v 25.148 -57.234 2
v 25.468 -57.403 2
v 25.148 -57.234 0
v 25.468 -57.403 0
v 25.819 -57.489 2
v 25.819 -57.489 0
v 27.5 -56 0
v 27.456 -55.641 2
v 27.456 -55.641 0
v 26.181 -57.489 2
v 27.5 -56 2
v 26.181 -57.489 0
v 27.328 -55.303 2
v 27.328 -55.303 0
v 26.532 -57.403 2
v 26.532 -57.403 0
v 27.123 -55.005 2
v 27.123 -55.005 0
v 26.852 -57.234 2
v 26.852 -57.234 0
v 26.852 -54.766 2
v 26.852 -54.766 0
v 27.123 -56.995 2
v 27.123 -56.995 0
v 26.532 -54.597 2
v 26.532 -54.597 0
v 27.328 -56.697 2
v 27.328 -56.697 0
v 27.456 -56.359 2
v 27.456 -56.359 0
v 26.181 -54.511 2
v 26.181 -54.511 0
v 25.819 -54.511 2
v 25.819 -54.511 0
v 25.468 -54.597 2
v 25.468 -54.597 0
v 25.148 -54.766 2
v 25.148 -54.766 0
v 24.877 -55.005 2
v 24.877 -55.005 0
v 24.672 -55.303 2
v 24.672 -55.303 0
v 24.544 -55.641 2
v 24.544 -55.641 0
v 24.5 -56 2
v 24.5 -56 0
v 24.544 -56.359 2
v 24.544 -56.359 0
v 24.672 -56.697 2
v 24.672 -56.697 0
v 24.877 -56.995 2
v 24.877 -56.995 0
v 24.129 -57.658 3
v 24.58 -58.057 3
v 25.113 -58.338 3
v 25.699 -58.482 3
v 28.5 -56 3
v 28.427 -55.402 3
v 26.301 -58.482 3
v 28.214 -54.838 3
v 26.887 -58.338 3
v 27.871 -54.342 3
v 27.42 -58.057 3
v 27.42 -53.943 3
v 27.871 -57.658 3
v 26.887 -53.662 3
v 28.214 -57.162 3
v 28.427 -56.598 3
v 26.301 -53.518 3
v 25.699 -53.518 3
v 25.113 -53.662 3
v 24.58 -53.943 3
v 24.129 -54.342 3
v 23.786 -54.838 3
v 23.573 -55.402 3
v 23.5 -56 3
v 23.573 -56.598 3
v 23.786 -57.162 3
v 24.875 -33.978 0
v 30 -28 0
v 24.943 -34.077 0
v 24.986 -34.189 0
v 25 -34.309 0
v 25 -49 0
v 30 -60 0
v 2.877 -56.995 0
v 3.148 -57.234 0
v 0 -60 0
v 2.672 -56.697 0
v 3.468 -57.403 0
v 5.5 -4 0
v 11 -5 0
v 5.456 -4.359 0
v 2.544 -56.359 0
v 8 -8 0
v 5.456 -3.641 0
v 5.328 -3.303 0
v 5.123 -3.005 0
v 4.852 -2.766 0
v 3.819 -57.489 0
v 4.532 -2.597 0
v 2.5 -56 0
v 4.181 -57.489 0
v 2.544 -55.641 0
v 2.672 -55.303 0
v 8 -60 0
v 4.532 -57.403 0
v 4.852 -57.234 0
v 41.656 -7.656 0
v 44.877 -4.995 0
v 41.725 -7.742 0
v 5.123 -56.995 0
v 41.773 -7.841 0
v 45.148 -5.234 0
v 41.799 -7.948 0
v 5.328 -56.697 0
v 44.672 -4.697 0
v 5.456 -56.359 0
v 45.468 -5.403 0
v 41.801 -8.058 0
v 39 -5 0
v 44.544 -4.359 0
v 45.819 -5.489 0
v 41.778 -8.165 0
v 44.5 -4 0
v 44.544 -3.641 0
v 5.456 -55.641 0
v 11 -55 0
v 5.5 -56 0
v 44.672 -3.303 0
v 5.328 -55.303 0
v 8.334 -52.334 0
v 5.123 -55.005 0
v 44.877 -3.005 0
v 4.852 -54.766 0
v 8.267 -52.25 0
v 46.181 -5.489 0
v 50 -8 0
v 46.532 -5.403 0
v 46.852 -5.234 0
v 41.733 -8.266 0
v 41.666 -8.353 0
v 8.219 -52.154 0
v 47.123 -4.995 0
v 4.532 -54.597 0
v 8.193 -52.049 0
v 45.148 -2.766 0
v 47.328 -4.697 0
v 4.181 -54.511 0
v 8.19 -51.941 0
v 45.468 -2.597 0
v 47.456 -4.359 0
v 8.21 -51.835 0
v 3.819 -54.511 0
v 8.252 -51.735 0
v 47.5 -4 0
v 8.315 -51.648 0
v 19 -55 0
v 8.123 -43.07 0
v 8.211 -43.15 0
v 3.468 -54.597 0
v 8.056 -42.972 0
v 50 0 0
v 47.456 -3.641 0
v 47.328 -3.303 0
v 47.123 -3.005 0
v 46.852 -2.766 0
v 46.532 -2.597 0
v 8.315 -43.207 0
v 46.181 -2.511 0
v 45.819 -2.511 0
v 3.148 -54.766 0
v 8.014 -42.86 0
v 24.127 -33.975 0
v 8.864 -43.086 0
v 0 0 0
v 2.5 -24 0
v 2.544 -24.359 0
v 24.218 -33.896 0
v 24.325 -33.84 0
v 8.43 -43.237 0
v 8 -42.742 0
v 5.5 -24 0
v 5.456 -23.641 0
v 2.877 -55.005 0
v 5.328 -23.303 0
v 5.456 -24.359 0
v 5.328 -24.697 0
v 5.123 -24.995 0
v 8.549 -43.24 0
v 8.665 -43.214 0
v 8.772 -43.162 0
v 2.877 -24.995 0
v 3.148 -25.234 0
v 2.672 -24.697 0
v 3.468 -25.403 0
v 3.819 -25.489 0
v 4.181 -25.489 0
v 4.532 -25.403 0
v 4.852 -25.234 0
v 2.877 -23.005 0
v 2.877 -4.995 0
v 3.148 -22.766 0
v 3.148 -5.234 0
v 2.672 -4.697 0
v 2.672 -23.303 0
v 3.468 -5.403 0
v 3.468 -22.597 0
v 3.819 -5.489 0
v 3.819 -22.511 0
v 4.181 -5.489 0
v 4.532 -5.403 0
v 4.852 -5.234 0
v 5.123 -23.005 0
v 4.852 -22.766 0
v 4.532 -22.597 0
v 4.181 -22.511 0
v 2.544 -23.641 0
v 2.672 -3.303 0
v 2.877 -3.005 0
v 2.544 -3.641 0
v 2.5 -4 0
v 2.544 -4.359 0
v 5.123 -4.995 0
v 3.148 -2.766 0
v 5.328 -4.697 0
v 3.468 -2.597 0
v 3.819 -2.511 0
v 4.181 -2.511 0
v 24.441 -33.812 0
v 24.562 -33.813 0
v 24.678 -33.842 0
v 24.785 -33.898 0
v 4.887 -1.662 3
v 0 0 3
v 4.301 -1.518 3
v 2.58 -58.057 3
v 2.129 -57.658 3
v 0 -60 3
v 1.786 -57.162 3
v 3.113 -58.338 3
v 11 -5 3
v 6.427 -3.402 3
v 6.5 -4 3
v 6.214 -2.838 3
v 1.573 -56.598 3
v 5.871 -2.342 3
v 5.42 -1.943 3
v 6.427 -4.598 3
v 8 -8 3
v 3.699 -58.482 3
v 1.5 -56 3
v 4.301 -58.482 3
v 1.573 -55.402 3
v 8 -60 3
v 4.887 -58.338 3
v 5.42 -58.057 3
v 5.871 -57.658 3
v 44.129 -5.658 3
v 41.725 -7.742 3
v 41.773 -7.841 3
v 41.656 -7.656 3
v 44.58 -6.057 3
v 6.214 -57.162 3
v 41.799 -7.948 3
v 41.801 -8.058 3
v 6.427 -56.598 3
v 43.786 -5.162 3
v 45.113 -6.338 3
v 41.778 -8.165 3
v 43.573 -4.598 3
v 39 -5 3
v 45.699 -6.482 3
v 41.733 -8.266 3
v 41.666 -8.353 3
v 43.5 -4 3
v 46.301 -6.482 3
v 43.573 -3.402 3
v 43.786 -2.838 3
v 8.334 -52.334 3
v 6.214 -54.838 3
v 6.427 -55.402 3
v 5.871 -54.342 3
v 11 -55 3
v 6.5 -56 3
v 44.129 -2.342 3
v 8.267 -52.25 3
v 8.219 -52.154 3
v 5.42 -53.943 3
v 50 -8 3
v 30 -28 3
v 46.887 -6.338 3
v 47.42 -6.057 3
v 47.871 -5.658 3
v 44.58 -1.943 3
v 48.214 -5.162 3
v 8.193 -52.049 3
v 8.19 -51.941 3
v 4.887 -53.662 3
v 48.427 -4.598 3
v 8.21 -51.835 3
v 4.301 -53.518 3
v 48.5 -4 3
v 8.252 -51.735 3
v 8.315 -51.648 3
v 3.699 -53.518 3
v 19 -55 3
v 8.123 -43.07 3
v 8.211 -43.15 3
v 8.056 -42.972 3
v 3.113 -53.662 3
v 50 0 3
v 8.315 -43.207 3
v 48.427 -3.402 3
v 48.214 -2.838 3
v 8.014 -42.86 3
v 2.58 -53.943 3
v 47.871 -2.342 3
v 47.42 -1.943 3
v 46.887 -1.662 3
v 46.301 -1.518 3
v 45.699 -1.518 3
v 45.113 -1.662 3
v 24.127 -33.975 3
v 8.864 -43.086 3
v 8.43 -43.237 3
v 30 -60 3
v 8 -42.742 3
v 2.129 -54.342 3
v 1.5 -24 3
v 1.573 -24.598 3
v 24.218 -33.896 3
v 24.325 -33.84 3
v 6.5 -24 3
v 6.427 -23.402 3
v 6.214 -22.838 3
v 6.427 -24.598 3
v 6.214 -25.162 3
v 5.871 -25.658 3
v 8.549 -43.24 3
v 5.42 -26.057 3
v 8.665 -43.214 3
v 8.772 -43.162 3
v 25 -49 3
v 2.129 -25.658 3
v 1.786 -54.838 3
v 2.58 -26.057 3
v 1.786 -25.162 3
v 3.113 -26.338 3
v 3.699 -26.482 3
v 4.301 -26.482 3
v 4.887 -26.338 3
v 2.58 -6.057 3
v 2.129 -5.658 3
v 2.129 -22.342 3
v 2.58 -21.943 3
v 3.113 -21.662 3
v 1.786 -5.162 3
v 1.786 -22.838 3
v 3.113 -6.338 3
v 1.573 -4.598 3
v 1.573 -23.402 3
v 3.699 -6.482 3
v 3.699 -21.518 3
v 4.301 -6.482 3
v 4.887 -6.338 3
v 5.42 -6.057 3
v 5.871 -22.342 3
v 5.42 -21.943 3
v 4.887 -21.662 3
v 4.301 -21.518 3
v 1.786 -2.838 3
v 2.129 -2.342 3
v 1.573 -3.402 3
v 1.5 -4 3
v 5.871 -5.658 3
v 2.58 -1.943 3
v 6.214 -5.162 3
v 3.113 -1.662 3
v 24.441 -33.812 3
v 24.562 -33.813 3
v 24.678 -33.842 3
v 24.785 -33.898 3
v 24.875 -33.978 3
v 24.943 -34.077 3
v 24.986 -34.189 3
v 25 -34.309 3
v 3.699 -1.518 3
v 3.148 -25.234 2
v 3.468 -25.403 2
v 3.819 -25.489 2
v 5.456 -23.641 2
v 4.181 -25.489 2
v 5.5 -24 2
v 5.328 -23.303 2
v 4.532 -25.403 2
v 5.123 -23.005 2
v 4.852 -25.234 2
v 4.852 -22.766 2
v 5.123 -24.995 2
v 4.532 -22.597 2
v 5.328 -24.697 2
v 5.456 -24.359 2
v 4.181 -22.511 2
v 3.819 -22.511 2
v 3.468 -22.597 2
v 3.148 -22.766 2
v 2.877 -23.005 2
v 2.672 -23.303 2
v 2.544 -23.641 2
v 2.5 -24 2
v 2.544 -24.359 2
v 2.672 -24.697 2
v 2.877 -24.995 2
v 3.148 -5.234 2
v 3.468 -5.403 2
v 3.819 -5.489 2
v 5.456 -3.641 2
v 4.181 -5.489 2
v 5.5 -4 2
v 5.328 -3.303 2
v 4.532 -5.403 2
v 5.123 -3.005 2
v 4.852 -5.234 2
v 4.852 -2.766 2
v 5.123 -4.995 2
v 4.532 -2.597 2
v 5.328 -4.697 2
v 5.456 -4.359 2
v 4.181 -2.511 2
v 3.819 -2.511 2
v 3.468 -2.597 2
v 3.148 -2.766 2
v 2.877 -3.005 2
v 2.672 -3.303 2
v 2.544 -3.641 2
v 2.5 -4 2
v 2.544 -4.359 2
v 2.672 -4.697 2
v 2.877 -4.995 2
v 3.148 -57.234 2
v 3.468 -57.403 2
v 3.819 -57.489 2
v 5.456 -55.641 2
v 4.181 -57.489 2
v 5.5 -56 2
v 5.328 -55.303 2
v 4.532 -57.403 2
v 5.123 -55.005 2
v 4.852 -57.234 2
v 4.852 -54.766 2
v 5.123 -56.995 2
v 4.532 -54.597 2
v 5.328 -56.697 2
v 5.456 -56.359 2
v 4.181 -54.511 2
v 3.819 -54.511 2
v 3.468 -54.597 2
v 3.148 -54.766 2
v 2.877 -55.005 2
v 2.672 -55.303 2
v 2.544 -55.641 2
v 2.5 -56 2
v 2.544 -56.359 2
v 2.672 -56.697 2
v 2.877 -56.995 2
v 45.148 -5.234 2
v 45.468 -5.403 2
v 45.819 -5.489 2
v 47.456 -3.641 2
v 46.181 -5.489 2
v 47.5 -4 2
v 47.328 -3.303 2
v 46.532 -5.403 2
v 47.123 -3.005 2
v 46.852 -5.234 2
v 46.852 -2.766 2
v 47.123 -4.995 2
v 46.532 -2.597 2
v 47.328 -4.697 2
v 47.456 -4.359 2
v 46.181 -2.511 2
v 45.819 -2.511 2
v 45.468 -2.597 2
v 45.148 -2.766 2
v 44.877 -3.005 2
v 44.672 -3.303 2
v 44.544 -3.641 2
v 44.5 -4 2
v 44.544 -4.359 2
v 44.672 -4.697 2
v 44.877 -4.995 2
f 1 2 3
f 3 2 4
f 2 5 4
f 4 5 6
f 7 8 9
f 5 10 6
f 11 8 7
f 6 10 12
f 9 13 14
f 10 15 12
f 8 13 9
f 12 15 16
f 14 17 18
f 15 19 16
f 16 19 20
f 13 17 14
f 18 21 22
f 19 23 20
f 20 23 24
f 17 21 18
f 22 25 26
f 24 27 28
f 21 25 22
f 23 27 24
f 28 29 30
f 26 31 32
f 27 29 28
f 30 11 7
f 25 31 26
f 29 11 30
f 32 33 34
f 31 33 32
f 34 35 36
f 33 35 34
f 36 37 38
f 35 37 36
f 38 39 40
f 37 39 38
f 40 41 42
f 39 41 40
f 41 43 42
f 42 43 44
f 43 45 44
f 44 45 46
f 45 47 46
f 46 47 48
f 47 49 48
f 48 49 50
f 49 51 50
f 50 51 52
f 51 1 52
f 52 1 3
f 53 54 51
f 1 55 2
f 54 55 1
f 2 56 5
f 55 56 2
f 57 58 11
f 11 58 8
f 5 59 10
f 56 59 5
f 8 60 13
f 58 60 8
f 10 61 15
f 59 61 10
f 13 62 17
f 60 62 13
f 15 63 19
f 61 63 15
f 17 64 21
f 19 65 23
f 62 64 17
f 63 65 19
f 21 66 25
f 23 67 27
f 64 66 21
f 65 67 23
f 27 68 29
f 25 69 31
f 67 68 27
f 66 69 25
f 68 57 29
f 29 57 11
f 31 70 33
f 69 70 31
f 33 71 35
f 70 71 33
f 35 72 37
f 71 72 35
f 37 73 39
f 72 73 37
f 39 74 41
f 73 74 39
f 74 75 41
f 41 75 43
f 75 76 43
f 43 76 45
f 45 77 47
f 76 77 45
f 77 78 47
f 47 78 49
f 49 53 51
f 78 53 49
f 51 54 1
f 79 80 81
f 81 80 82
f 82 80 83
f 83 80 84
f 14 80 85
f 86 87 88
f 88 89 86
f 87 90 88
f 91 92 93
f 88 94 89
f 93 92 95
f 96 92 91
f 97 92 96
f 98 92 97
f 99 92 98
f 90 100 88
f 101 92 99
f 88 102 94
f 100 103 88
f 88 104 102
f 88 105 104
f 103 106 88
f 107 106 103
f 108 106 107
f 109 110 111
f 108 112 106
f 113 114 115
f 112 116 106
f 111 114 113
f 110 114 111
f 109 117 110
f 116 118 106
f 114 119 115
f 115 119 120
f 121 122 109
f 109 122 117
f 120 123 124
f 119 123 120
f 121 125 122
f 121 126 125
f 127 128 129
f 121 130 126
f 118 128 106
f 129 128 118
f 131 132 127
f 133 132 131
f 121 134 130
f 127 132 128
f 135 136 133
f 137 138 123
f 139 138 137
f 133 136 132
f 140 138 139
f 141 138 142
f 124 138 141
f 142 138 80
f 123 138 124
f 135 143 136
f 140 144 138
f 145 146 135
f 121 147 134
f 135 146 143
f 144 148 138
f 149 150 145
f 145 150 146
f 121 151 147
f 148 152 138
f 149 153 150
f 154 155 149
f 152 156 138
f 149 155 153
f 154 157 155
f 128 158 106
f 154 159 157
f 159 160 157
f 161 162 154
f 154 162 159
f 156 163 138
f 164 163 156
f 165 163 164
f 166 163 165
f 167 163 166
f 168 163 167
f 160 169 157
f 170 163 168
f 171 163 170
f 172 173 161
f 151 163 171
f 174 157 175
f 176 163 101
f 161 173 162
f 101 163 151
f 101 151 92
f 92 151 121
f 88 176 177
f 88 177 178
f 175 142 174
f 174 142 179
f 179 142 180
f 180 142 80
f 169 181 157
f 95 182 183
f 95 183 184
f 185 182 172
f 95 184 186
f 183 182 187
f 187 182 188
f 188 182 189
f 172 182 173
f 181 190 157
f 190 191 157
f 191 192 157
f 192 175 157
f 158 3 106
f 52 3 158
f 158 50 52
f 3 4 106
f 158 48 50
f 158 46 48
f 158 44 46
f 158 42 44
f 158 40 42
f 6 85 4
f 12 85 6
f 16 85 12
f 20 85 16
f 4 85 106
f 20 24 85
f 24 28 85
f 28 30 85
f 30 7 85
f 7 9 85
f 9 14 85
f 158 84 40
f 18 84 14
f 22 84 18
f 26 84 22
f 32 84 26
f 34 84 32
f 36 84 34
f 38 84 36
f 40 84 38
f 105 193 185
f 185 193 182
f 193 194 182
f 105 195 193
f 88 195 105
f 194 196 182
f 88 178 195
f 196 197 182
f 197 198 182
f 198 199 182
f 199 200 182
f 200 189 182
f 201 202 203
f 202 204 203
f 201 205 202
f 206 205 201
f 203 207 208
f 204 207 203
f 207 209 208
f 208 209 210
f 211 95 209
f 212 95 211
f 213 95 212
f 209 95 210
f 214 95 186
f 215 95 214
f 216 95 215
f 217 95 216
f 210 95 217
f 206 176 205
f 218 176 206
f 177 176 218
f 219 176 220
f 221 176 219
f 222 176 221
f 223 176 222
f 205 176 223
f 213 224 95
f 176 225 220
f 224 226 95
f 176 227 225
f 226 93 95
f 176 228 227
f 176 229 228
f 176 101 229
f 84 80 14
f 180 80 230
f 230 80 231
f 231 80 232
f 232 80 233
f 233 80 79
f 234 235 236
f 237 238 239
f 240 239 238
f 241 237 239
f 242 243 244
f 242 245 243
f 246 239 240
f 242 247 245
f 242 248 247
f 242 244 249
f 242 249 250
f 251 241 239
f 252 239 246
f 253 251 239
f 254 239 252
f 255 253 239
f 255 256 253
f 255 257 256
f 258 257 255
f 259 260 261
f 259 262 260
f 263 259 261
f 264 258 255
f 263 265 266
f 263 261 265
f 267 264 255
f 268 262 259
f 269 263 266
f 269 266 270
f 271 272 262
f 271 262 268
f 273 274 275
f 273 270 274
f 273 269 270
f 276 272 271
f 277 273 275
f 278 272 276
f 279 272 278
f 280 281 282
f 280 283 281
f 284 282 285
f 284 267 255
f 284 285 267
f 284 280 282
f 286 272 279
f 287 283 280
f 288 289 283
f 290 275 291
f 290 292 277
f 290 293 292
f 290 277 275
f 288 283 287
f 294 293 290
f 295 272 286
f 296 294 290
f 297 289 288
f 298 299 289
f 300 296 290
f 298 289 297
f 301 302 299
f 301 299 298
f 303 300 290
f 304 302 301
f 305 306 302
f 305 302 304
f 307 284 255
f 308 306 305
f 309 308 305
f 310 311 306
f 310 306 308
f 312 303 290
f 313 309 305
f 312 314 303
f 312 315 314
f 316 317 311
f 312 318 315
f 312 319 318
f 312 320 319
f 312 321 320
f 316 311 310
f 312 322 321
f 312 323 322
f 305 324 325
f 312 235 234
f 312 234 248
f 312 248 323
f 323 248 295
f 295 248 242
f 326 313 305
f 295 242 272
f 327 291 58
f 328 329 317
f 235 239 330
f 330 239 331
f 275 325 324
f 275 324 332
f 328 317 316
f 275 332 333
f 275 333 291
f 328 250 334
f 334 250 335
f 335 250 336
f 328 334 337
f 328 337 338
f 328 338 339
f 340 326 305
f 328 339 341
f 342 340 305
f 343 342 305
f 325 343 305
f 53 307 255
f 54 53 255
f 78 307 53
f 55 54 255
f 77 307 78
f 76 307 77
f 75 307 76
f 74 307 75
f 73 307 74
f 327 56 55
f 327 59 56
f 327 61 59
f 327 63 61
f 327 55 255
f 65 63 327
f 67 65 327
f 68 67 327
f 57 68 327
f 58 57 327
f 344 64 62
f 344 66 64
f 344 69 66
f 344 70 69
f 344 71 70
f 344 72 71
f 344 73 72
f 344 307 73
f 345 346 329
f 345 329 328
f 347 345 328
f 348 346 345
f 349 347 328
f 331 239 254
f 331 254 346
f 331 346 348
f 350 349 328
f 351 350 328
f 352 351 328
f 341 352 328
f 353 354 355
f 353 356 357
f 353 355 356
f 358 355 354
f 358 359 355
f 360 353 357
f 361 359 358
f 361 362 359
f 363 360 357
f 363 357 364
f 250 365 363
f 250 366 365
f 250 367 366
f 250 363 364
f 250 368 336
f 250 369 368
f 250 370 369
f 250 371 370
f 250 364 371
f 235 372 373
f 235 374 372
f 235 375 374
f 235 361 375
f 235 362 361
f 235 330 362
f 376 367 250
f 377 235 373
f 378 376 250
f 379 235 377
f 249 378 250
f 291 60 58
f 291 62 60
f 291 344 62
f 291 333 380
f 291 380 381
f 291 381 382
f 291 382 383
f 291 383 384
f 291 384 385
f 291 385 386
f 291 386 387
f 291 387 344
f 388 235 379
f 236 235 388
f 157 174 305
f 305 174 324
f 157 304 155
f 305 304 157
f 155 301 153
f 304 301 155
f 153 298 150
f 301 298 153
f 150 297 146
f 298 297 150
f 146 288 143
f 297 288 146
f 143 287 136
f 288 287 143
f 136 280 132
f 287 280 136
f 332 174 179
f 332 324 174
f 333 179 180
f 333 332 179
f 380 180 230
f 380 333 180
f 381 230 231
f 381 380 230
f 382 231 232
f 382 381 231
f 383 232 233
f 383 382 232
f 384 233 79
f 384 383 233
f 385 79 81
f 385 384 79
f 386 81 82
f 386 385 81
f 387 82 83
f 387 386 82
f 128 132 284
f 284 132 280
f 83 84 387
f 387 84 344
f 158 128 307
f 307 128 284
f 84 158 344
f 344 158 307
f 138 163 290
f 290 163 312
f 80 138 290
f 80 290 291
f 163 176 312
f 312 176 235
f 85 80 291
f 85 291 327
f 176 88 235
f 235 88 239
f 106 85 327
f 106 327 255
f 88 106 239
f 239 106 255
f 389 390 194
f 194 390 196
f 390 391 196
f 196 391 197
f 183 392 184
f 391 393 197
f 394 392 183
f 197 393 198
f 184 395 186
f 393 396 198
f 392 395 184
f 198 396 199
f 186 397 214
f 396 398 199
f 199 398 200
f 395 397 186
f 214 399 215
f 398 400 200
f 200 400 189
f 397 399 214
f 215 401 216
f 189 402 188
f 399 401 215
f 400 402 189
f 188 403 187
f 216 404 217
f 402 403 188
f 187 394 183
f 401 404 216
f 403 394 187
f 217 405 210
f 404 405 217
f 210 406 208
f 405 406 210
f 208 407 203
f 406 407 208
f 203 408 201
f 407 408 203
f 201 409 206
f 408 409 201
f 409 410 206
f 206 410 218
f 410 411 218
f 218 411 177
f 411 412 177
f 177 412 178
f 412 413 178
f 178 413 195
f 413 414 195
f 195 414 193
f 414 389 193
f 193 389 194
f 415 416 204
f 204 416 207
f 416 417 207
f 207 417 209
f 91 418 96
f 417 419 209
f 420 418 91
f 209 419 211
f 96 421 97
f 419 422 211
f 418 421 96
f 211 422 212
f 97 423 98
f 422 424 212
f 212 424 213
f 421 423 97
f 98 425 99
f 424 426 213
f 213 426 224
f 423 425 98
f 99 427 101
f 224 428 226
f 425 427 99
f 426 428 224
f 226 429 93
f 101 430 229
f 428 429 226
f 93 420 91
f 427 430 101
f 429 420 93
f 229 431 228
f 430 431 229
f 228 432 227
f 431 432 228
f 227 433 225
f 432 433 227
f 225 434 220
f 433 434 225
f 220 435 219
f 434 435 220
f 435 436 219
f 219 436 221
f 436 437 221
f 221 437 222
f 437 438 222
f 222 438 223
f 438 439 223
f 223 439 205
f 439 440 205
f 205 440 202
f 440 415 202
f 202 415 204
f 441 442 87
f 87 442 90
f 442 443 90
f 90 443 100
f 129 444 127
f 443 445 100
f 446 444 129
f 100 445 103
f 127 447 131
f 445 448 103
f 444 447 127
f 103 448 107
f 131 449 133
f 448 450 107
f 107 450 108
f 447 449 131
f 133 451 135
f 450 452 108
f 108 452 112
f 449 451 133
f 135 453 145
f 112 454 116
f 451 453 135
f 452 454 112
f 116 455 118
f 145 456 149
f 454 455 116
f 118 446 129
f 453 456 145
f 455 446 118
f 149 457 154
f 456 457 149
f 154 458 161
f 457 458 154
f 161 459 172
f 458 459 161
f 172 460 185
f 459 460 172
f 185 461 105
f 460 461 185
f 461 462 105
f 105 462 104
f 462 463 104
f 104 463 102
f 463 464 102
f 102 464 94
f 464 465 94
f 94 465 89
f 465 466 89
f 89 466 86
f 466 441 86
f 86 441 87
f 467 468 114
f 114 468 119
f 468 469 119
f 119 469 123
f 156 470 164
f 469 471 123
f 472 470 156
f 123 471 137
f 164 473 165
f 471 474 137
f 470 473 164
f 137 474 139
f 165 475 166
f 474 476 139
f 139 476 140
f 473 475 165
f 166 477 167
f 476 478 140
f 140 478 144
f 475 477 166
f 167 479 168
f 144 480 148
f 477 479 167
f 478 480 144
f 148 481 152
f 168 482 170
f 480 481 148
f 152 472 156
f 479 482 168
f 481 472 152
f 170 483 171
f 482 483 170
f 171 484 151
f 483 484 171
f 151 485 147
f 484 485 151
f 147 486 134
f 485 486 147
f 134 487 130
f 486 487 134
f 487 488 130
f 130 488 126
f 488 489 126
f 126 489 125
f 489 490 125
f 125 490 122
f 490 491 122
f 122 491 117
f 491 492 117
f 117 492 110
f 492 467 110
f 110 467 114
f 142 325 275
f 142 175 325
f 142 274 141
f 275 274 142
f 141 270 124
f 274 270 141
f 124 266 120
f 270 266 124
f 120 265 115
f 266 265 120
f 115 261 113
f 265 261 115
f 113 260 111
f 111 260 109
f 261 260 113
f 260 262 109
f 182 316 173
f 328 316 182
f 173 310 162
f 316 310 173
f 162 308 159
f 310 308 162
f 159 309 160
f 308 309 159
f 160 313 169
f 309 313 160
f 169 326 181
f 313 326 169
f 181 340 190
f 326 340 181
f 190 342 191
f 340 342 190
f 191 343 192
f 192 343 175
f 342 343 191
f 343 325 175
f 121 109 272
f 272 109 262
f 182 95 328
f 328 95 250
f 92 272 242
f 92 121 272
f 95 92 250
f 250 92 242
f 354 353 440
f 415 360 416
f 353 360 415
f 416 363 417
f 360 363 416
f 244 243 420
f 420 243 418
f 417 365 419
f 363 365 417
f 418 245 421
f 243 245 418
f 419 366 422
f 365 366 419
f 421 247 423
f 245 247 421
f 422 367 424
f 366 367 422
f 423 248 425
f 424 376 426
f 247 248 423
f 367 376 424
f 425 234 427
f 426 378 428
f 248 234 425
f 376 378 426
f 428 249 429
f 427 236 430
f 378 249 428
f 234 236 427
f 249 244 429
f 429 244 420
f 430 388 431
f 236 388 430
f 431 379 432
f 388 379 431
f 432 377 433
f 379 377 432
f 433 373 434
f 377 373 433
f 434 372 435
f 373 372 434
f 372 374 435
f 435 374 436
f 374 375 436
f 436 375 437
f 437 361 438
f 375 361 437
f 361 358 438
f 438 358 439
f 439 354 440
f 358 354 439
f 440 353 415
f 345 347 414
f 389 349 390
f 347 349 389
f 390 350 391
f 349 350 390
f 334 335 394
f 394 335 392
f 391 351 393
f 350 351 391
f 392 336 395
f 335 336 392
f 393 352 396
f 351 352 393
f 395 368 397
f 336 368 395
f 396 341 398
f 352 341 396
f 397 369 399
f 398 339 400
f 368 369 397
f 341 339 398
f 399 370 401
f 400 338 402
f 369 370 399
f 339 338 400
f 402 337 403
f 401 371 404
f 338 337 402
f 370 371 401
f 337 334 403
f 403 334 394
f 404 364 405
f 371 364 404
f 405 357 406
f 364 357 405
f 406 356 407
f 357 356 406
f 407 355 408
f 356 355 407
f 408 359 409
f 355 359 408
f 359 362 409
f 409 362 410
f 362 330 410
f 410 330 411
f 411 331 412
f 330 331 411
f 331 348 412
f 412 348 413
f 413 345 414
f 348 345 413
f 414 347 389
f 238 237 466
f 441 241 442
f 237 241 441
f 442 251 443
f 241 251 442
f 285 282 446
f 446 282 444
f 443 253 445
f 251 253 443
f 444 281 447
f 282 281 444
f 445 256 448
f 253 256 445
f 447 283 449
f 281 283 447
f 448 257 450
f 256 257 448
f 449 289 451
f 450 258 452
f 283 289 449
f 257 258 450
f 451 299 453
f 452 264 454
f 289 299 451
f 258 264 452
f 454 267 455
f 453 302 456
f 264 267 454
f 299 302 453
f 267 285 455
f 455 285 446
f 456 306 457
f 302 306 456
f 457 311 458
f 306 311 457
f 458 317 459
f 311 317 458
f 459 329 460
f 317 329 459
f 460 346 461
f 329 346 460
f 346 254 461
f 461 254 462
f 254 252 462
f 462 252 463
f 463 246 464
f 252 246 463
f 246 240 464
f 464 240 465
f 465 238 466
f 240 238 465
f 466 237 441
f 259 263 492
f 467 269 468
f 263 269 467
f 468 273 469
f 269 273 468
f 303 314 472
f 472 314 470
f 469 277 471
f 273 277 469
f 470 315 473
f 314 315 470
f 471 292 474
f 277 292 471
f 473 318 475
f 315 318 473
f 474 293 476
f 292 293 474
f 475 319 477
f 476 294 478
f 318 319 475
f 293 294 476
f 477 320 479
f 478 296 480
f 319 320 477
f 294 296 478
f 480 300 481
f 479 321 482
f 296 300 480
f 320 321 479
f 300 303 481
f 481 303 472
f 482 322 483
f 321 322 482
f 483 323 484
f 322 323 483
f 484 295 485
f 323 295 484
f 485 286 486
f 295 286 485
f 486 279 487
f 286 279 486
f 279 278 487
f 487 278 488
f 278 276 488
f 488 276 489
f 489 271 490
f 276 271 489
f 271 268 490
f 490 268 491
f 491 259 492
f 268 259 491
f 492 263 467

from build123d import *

# Parameters (mm, degrees)
PAD_DEPTH    = 3
SKETCH001_R  = 1.5
POCKET_DEPTH = 5
FILLET_R     = 0.5
FILLET001_R  = 0.5
CHAMFER_SIZE = 1


with BuildPart() as part:
    # Sketch → Pad (new body)
    with BuildSketch(Plane.XY):
        Polygon((0, 0), (0, -60), (8, -60), (30, -60), (30, -28), (50, -8), (50, 0), align=None)
        Polygon((8, -8), (11, -5), (39, -5), (42, -8), (8, -44), align=None, mode=Mode.SUBTRACT)
        Polygon((8, -52), (25, -33), (25, -49), (19, -55), (11, -55), align=None, mode=Mode.SUBTRACT)
    extrude(amount=PAD_DEPTH)

    # Sketch001 (on Face19 of Pad) → Pocket (cut)
    with BuildSketch(Plane.XY.offset(3)):
        with Locations((4, -4)):
            Circle(SKETCH001_R)
        with Locations((46, -4)):
            Circle(SKETCH001_R)
        with Locations((4, -24)):
            Circle(SKETCH001_R)
        with Locations((4, -56)):
            Circle(SKETCH001_R)
        with Locations((26, -56)):
            Circle(SKETCH001_R)
    extrude(amount=-POCKET_DEPTH, mode=Mode.SUBTRACT)

    # Fillet
    fillet_edges = [part.edges().sort_by_distance(p)[0] for p in [
        (8, -44, 1.5),
        (25, -33, 1.5),
    ]]
    fillet(fillet_edges, radius=FILLET_R)

    # Fillet001
    fillet001_edges = [part.edges().sort_by_distance(p)[0] for p in [
        (8, -52, 1.5),
        (42, -8, 1.5),
    ]]
    fillet(fillet001_edges, radius=FILLET001_R)

    # Chamfer
    chamfer_edges = [part.edges().sort_by_distance(p)[0] for p in [
        (2.5, -4, 3),
        (2.5, -24, 3),
        (2.5, -56, 3),
        (24.5, -56, 3),
        (44.5, -4, 3),
    ]]
    chamfer(chamfer_edges, length=CHAMFER_SIZE)


solid = part.part
